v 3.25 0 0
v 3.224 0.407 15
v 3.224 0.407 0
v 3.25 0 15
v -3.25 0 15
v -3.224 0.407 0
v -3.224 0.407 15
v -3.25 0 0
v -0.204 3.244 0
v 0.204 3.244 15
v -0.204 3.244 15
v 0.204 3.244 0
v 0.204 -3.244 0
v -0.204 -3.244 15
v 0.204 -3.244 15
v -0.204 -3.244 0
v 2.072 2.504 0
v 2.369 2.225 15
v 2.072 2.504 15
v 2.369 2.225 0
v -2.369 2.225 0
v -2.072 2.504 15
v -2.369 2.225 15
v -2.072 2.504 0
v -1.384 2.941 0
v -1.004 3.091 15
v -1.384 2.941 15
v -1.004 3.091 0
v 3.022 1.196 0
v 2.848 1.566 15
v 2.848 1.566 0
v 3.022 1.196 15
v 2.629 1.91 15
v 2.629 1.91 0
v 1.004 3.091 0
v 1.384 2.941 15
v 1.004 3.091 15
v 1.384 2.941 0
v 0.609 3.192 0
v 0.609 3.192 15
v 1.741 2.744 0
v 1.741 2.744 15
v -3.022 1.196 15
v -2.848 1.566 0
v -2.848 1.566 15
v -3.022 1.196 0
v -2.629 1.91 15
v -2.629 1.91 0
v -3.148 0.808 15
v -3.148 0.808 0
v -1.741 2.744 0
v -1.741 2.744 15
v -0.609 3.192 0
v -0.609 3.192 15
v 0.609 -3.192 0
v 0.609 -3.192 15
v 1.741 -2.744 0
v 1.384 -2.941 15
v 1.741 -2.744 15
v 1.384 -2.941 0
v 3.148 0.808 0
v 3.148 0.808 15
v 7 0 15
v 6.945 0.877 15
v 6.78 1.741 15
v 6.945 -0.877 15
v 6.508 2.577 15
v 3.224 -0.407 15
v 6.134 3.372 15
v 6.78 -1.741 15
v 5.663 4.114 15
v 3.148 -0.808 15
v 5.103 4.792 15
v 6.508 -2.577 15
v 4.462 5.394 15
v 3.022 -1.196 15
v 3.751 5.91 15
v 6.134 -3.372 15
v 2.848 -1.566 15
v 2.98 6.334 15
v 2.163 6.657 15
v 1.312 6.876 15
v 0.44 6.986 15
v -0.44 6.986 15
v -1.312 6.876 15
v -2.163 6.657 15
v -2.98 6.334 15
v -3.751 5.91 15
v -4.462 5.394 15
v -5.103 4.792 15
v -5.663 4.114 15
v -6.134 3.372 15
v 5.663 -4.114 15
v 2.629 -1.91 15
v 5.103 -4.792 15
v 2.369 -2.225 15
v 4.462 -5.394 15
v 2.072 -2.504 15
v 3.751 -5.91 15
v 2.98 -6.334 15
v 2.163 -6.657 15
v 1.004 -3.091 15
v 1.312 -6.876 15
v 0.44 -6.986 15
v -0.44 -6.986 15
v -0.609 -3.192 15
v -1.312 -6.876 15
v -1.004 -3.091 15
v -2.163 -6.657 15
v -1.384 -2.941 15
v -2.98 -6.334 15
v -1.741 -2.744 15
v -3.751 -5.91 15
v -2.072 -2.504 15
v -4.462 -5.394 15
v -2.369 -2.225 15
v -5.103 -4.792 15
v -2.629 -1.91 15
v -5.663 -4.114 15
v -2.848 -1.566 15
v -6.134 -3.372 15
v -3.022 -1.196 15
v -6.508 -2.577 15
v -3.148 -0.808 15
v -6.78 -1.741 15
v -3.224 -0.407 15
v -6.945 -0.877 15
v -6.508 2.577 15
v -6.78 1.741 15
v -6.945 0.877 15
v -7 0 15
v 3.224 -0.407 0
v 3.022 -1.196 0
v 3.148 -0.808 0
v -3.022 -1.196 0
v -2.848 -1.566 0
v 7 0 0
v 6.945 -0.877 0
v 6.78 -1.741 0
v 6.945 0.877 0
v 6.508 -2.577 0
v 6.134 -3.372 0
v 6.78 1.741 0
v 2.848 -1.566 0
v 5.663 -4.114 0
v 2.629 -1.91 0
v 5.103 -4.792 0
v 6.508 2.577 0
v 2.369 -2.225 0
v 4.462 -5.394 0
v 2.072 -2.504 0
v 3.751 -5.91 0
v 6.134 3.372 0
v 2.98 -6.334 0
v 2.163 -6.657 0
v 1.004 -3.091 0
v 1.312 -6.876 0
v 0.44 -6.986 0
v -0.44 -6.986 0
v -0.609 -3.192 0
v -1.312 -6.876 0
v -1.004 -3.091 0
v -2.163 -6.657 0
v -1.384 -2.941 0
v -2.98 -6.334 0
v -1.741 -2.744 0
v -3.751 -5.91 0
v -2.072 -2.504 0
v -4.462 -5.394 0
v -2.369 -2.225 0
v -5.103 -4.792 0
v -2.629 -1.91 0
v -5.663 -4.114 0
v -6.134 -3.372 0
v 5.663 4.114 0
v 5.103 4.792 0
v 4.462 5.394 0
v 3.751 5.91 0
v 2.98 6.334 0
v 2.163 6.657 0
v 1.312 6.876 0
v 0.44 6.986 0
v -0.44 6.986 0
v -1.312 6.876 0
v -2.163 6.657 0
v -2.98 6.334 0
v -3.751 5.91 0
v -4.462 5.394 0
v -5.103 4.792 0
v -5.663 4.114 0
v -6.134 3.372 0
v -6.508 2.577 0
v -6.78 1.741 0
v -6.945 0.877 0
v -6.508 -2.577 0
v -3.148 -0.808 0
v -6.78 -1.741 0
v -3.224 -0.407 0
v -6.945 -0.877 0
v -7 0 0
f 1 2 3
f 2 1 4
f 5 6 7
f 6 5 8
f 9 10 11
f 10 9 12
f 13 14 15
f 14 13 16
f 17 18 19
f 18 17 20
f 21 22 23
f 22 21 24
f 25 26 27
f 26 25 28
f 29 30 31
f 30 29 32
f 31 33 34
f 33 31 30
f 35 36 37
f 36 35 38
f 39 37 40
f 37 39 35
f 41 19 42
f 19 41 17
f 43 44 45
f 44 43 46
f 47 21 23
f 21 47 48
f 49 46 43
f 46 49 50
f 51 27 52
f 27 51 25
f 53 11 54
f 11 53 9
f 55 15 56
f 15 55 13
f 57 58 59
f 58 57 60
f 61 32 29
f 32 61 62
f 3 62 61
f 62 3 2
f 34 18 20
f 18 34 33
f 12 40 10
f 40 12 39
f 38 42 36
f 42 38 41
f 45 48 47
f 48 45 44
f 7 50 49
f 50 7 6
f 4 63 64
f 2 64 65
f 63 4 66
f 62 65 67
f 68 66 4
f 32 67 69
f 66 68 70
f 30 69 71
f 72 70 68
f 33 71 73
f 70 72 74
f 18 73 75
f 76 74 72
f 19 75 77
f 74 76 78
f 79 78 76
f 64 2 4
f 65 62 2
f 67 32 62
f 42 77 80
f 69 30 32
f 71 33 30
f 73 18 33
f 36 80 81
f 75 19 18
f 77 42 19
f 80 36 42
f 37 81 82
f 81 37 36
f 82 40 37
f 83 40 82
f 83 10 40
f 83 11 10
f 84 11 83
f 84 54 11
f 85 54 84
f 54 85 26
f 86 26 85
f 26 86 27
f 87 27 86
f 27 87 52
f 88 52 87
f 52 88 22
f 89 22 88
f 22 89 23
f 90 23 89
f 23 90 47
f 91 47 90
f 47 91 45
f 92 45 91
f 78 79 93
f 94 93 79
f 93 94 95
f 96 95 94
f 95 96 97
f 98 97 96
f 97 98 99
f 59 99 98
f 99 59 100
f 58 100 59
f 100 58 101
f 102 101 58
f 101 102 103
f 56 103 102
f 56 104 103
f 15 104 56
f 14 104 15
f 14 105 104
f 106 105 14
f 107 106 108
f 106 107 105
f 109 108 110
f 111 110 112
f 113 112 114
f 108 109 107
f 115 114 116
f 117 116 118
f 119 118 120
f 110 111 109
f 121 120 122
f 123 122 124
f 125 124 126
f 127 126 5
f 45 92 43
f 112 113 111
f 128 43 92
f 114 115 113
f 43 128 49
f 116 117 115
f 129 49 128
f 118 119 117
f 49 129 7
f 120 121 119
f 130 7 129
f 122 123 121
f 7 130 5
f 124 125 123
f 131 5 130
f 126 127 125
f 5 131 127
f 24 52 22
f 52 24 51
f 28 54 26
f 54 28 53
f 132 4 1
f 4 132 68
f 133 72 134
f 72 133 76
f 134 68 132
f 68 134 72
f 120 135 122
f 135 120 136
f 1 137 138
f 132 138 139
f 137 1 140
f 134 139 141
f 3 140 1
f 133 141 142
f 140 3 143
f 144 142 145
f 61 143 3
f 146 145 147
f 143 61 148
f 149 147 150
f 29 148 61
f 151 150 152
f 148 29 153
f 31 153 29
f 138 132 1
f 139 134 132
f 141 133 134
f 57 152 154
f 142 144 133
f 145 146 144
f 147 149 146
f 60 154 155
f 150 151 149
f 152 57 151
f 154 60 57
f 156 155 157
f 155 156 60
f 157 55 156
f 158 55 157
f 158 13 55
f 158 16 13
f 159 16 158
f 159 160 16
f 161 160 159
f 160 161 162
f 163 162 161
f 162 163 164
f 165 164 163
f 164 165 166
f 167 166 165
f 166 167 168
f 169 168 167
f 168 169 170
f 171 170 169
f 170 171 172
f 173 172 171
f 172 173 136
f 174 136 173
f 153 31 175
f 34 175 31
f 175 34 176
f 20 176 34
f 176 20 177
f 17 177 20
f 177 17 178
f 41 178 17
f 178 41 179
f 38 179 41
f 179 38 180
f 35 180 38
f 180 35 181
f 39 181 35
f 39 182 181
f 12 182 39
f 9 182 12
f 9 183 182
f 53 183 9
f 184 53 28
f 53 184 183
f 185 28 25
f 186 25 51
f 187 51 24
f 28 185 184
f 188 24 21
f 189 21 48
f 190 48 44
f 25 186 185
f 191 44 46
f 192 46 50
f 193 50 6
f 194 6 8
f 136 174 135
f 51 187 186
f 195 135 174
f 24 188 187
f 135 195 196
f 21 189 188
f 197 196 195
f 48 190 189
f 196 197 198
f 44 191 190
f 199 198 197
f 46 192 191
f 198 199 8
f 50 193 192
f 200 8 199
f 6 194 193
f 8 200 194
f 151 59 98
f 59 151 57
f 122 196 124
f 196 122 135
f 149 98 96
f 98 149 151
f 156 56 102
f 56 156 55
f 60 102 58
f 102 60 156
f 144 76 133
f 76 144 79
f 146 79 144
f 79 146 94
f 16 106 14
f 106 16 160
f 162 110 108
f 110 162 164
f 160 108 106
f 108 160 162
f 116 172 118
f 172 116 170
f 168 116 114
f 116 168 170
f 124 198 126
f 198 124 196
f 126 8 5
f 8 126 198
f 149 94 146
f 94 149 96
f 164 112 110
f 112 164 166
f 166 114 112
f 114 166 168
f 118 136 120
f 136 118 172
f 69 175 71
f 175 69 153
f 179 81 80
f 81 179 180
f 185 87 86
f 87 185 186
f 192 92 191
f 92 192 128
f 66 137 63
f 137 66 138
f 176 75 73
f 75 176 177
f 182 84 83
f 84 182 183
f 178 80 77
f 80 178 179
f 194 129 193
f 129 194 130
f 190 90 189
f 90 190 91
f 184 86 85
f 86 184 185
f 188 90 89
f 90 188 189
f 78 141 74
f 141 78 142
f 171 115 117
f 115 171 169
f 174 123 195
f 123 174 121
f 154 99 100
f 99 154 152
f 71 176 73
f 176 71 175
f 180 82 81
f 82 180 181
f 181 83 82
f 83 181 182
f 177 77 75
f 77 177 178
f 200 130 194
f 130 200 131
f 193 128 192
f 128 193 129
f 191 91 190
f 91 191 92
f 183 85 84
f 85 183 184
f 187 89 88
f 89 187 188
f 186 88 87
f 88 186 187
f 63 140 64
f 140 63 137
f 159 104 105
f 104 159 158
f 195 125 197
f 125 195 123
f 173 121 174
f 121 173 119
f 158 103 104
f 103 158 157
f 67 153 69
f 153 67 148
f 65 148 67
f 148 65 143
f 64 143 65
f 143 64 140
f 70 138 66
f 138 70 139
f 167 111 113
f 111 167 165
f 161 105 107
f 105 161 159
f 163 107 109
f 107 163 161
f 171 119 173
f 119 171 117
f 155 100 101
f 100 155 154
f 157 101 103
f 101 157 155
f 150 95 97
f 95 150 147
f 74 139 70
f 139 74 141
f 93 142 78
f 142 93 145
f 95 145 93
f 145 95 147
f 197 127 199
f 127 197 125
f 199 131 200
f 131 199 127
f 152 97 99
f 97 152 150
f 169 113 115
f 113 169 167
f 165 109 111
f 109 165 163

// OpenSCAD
$fn = 50;


difference() {
	union() {
		cylinder(h = 15, r = 7.0000000000);
	}
	union() {
		cylinder(h = 15, r = 3.2500000000);
		cylinder(h = 15, r = 3.2500000000);
		cylinder(h = 15, r = 1.8000000000);
		cylinder(h = 15, r = 1.8000000000);
		cylinder(h = 15, r = 1.8000000000);
		cylinder(h = 15, r = 1.8000000000);
		cylinder(h = 15, r = 1.8000000000);
		cylinder(h = 15, r = 1.8000000000);
	}
}
